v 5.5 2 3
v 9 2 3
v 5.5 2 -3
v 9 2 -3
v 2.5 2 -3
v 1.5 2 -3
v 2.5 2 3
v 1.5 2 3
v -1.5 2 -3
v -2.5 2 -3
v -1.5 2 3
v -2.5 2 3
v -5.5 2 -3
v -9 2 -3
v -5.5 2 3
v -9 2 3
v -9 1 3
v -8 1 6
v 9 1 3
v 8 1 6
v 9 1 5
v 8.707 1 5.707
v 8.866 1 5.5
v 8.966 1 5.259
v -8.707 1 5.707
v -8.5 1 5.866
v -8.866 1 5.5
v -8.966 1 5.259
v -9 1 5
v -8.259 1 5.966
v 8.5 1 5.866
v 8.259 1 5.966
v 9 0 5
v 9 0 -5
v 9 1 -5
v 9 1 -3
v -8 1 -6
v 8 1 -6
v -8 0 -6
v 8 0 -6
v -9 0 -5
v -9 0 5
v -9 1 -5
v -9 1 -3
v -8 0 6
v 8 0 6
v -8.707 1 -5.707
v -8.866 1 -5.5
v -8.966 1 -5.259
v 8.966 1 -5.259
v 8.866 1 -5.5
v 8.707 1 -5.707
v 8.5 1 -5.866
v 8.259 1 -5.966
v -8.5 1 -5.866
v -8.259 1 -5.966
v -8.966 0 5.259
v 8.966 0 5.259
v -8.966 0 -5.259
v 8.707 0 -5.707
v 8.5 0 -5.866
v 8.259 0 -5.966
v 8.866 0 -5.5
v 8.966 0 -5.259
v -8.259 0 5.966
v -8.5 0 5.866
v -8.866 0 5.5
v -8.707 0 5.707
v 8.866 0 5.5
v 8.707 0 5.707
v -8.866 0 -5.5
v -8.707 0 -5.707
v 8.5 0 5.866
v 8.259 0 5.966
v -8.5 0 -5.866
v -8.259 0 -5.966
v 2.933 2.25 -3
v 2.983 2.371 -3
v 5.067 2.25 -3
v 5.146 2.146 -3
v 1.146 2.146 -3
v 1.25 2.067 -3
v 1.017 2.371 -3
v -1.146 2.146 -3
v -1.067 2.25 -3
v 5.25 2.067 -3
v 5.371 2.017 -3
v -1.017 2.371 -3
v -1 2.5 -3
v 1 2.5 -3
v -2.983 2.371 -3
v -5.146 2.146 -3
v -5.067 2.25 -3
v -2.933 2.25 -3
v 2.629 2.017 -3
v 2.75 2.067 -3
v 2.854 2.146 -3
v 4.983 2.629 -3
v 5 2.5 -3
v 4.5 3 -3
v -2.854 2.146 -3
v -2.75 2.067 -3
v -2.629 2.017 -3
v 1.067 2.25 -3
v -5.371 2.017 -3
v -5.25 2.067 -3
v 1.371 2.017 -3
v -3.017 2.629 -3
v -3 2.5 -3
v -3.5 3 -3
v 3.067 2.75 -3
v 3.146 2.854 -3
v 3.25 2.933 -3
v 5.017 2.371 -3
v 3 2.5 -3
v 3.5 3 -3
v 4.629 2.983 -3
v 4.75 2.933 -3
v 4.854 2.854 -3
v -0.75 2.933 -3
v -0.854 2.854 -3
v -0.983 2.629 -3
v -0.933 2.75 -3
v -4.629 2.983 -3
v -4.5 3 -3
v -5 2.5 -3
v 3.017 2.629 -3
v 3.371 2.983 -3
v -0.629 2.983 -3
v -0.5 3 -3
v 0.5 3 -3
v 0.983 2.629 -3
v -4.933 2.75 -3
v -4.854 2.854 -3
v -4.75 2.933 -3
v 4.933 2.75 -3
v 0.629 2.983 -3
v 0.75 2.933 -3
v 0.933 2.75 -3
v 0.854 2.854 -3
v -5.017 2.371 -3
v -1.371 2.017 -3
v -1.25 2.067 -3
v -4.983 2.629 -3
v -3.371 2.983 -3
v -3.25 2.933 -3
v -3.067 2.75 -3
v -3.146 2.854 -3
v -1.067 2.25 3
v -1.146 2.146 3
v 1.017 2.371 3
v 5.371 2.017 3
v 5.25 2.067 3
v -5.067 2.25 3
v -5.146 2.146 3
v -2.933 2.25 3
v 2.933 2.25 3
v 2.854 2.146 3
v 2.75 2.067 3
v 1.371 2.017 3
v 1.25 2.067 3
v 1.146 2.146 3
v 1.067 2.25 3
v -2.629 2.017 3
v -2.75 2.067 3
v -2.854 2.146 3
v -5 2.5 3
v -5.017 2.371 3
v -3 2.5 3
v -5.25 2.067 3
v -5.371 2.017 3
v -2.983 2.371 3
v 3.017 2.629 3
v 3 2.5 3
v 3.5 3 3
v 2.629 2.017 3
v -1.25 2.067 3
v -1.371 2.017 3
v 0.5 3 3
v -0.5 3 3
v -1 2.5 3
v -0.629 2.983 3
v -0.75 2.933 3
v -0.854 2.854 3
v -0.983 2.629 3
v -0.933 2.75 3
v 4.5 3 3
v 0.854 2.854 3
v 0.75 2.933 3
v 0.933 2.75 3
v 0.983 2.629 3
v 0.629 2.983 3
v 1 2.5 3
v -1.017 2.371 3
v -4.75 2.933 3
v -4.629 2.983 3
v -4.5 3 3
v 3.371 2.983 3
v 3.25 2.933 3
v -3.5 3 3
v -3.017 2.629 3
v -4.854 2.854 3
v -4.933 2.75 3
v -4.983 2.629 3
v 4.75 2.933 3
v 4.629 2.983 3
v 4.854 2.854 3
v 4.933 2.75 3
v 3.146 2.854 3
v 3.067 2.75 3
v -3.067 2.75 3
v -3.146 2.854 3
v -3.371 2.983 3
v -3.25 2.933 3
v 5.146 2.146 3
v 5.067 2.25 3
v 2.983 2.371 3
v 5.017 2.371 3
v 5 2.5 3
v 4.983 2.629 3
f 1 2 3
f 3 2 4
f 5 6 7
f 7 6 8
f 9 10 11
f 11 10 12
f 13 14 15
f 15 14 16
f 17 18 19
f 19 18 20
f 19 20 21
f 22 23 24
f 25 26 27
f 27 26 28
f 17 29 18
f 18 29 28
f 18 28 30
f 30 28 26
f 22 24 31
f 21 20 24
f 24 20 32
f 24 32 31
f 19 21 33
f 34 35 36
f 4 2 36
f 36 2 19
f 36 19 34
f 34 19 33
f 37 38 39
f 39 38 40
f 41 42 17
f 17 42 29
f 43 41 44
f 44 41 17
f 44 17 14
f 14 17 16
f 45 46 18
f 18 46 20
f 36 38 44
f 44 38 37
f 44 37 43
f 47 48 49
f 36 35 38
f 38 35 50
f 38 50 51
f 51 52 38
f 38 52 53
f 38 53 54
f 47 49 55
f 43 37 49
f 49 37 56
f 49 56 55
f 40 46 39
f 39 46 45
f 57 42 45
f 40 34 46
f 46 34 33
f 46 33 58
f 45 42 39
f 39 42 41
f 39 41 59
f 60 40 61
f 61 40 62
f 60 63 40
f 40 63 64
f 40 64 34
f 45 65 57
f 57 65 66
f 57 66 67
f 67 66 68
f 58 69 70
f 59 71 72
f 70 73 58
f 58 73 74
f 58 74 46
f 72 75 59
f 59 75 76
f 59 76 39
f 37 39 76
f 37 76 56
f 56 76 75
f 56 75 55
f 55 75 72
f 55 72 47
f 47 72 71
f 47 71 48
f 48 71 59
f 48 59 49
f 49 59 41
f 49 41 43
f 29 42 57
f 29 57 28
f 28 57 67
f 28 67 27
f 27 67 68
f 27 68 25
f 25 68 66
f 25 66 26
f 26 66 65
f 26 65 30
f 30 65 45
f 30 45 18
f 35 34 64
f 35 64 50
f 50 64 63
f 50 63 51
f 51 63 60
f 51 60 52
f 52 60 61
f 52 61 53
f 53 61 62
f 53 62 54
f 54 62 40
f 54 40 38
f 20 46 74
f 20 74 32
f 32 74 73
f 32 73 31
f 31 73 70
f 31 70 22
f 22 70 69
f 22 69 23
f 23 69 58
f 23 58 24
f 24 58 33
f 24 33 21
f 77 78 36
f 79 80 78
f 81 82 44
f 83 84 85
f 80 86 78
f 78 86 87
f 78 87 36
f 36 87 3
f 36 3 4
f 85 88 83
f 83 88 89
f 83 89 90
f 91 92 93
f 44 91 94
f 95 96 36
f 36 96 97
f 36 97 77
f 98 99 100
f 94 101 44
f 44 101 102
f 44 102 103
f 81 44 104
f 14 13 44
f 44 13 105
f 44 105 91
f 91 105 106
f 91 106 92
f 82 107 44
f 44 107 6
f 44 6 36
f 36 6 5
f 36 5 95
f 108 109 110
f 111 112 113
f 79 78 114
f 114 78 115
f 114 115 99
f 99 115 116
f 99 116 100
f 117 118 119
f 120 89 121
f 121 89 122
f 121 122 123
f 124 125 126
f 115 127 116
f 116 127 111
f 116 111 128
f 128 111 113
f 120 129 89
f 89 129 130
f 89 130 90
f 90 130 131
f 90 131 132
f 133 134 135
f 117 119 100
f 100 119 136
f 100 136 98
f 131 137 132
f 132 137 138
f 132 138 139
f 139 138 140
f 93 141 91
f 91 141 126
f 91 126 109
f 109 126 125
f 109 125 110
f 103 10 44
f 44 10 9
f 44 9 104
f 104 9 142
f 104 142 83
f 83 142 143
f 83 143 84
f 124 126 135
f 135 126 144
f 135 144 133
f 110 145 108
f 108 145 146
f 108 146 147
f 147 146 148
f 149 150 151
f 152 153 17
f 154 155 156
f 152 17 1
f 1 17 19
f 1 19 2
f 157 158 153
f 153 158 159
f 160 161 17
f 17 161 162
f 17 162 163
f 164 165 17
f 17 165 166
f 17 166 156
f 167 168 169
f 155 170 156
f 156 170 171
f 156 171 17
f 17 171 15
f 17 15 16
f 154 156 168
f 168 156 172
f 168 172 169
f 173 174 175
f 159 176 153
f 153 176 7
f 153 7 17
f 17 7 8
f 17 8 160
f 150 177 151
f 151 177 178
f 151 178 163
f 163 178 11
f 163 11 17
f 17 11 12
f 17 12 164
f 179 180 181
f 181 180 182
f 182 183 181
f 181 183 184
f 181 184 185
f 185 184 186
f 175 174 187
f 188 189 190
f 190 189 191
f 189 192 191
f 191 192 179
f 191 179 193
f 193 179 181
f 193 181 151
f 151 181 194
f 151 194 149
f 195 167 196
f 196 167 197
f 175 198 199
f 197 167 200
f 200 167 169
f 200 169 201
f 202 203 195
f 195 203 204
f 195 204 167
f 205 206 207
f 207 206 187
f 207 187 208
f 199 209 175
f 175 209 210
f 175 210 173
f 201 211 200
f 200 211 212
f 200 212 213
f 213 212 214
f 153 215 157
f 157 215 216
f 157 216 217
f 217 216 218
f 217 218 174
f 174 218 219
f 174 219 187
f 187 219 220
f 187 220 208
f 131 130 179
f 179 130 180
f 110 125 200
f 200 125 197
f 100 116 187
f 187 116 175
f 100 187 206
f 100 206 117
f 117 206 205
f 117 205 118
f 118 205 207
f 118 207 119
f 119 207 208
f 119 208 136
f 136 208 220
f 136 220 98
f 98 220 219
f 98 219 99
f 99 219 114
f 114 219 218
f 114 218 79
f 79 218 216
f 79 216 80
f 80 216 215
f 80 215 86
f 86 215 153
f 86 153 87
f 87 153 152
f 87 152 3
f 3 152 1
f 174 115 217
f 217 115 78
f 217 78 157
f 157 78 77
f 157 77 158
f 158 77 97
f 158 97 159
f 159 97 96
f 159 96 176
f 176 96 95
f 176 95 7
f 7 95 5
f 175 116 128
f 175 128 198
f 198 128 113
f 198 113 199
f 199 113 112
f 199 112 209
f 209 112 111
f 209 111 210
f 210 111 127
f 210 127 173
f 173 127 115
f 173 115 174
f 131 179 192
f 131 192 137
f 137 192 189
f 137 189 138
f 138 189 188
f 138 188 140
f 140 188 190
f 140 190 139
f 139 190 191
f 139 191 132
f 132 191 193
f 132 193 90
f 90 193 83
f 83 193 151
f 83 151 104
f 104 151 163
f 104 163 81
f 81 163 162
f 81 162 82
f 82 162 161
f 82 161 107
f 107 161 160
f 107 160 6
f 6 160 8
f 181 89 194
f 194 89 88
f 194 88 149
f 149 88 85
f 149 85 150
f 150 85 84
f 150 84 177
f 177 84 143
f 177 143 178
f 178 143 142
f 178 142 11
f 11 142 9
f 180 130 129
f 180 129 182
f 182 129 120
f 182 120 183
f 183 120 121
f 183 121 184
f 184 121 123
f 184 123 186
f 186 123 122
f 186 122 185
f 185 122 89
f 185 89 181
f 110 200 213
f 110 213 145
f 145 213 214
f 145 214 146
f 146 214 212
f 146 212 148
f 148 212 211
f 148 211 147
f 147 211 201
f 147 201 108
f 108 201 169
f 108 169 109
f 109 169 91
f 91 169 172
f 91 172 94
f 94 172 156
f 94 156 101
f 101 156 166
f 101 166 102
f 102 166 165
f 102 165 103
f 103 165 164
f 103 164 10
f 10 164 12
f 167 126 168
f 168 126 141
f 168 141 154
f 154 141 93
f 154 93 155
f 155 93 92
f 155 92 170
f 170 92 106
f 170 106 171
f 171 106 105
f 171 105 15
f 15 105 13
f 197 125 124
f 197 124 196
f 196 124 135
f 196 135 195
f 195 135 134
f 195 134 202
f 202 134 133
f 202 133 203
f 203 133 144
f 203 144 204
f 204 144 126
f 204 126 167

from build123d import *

# Parameters (mm, degrees)
SKETCH2_W           = 18
SKETCH2_H           = 12
BOSS_EXTRUDE1_DEPTH = 1
FILLET1_R           = 1
SKETCH3_W           = 18
SKETCH3_H           = 6
BOSS_EXTRUDE2_DEPTH = 1
SKETCH4_W           = 2
SKETCH4_H           = 6
BOSS_EXTRUDE3_DEPTH = 1
FILLET2_START       = -4
FILLET2_DEPTH       = 8
FILLET2_START_2     = -3
FILLET2_2_DEPTH     = 6


with BuildPart() as part:
    # Sketch2 → Boss-Extrude1 (new body)
    with BuildSketch(Plane(origin=(0, 0, 0), x_dir=(1, 0, 0), z_dir=(0, 1, 0))):
        Rectangle(SKETCH2_W, SKETCH2_H)
    extrude(amount=BOSS_EXTRUDE1_DEPTH)

    # Fillet1
    fillet1_edges = [part.edges().sort_by_distance(p)[0] for p in [
        (9, 0.5, 6),
        (-9, 0.5, 6),
        (-9, 0.5, -6),
        (9, 0.5, -6),
    ]]
    fillet(fillet1_edges, radius=FILLET1_R)

    # Sketch3 → Boss-Extrude2 (add)
    with BuildSketch(Plane(origin=(0, 1, 0), x_dir=(1, 0, 0), z_dir=(0, 1, 0))):
        Rectangle(SKETCH3_W, SKETCH3_H)
    extrude(amount=BOSS_EXTRUDE2_DEPTH)

    # Sketch4 → Boss-Extrude3 (add)
    with BuildSketch(Plane(origin=(0, 2, 0), x_dir=(1, 0, 0), z_dir=(0, 1, 0))):
        Rectangle(SKETCH4_W, SKETCH4_H)
        with Locations((-4, 0)):
            Rectangle(SKETCH4_W, SKETCH4_H)
        with Locations((4, 0)):
            Rectangle(SKETCH4_W, SKETCH4_H)
    extrude(amount=BOSS_EXTRUDE3_DEPTH)

    # Fillet2: read off the stored shape, not the designer's step
    # Fillet2 outline → Fillet2 (cut)
    with BuildSketch(Plane.XY.offset(FILLET2_START)):
        with BuildLine():
            ThreePointArc((-5, 2.5), (-4.853553391, 2.853553391), (-4.5, 3))
            Line((-4.5, 3), (-5, 3))
            Line((-5, 3), (-5, 2.5))
        make_face()
        with BuildLine():
            ThreePointArc((-3.5, 3), (-3.146446609, 2.853553391), (-3, 2.5))
            Line((-3, 2.5), (-3, 3))
            Line((-3, 3), (-3.5, 3))
        make_face()
        with BuildLine():
            ThreePointArc((-1, 2.5), (-0.853553391, 2.853553391), (-0.5, 3))
            Line((-0.5, 3), (-1, 3))
            Line((-1, 3), (-1, 2.5))
        make_face()
        with BuildLine():
            ThreePointArc((0.5, 3), (0.853553391, 2.853553391), (1, 2.5))
            Line((1, 2.5), (1, 3))
            Line((1, 3), (0.5, 3))
        make_face()
        with BuildLine():
            ThreePointArc((3, 2.5), (3.146446609, 2.853553391), (3.5, 3))
            Line((3.5, 3), (3, 3))
            Line((3, 3), (3, 2.5))
        make_face()
        with BuildLine():
            ThreePointArc((4.5, 3), (4.853553391, 2.853553391), (5, 2.5))
            Line((5, 2.5), (5, 3))
            Line((5, 3), (4.5, 3))
        make_face()
    extrude(amount=FILLET2_DEPTH, mode=Mode.SUBTRACT)

    # Fillet2 2 outline → Fillet2 2 (add)
    with BuildSketch(Plane.XY.offset(FILLET2_START_2)):
        with BuildLine():
            Line((-5, 2), (-5, 2.5))
            ThreePointArc((-5, 2.5), (-5.146446609, 2.146446609), (-5.5, 2))
            Line((-5.5, 2), (-5, 2))
        make_face()
        with BuildLine():
            Line((-3, 2), (-2.5, 2))
            ThreePointArc((-2.5, 2), (-2.853553391, 2.146446609), (-3, 2.5))
            Line((-3, 2.5), (-3, 2))
        make_face()
        with BuildLine():
            Line((-1, 2), (-1, 2.5))
            ThreePointArc((-1, 2.5), (-1.146446609, 2.146446609), (-1.5, 2))
            Line((-1.5, 2), (-1, 2))
        make_face()
        with BuildLine():
            Line((1, 2), (1.5, 2))
            ThreePointArc((1.5, 2), (1.146446609, 2.146446609), (1, 2.5))
            Line((1, 2.5), (1, 2))
        make_face()
        with BuildLine():
            Line((3, 2), (3, 2.5))
            ThreePointArc((3, 2.5), (2.853553391, 2.146446609), (2.5, 2))
            Line((2.5, 2), (3, 2))
        make_face()
        with BuildLine():
            ThreePointArc((5.5, 2), (5.146446609, 2.146446609), (5, 2.5))
            Line((5, 2.5), (5, 2))
            Line((5, 2), (5.5, 2))
        make_face()
    extrude(amount=FILLET2_2_DEPTH)


solid = part.part
